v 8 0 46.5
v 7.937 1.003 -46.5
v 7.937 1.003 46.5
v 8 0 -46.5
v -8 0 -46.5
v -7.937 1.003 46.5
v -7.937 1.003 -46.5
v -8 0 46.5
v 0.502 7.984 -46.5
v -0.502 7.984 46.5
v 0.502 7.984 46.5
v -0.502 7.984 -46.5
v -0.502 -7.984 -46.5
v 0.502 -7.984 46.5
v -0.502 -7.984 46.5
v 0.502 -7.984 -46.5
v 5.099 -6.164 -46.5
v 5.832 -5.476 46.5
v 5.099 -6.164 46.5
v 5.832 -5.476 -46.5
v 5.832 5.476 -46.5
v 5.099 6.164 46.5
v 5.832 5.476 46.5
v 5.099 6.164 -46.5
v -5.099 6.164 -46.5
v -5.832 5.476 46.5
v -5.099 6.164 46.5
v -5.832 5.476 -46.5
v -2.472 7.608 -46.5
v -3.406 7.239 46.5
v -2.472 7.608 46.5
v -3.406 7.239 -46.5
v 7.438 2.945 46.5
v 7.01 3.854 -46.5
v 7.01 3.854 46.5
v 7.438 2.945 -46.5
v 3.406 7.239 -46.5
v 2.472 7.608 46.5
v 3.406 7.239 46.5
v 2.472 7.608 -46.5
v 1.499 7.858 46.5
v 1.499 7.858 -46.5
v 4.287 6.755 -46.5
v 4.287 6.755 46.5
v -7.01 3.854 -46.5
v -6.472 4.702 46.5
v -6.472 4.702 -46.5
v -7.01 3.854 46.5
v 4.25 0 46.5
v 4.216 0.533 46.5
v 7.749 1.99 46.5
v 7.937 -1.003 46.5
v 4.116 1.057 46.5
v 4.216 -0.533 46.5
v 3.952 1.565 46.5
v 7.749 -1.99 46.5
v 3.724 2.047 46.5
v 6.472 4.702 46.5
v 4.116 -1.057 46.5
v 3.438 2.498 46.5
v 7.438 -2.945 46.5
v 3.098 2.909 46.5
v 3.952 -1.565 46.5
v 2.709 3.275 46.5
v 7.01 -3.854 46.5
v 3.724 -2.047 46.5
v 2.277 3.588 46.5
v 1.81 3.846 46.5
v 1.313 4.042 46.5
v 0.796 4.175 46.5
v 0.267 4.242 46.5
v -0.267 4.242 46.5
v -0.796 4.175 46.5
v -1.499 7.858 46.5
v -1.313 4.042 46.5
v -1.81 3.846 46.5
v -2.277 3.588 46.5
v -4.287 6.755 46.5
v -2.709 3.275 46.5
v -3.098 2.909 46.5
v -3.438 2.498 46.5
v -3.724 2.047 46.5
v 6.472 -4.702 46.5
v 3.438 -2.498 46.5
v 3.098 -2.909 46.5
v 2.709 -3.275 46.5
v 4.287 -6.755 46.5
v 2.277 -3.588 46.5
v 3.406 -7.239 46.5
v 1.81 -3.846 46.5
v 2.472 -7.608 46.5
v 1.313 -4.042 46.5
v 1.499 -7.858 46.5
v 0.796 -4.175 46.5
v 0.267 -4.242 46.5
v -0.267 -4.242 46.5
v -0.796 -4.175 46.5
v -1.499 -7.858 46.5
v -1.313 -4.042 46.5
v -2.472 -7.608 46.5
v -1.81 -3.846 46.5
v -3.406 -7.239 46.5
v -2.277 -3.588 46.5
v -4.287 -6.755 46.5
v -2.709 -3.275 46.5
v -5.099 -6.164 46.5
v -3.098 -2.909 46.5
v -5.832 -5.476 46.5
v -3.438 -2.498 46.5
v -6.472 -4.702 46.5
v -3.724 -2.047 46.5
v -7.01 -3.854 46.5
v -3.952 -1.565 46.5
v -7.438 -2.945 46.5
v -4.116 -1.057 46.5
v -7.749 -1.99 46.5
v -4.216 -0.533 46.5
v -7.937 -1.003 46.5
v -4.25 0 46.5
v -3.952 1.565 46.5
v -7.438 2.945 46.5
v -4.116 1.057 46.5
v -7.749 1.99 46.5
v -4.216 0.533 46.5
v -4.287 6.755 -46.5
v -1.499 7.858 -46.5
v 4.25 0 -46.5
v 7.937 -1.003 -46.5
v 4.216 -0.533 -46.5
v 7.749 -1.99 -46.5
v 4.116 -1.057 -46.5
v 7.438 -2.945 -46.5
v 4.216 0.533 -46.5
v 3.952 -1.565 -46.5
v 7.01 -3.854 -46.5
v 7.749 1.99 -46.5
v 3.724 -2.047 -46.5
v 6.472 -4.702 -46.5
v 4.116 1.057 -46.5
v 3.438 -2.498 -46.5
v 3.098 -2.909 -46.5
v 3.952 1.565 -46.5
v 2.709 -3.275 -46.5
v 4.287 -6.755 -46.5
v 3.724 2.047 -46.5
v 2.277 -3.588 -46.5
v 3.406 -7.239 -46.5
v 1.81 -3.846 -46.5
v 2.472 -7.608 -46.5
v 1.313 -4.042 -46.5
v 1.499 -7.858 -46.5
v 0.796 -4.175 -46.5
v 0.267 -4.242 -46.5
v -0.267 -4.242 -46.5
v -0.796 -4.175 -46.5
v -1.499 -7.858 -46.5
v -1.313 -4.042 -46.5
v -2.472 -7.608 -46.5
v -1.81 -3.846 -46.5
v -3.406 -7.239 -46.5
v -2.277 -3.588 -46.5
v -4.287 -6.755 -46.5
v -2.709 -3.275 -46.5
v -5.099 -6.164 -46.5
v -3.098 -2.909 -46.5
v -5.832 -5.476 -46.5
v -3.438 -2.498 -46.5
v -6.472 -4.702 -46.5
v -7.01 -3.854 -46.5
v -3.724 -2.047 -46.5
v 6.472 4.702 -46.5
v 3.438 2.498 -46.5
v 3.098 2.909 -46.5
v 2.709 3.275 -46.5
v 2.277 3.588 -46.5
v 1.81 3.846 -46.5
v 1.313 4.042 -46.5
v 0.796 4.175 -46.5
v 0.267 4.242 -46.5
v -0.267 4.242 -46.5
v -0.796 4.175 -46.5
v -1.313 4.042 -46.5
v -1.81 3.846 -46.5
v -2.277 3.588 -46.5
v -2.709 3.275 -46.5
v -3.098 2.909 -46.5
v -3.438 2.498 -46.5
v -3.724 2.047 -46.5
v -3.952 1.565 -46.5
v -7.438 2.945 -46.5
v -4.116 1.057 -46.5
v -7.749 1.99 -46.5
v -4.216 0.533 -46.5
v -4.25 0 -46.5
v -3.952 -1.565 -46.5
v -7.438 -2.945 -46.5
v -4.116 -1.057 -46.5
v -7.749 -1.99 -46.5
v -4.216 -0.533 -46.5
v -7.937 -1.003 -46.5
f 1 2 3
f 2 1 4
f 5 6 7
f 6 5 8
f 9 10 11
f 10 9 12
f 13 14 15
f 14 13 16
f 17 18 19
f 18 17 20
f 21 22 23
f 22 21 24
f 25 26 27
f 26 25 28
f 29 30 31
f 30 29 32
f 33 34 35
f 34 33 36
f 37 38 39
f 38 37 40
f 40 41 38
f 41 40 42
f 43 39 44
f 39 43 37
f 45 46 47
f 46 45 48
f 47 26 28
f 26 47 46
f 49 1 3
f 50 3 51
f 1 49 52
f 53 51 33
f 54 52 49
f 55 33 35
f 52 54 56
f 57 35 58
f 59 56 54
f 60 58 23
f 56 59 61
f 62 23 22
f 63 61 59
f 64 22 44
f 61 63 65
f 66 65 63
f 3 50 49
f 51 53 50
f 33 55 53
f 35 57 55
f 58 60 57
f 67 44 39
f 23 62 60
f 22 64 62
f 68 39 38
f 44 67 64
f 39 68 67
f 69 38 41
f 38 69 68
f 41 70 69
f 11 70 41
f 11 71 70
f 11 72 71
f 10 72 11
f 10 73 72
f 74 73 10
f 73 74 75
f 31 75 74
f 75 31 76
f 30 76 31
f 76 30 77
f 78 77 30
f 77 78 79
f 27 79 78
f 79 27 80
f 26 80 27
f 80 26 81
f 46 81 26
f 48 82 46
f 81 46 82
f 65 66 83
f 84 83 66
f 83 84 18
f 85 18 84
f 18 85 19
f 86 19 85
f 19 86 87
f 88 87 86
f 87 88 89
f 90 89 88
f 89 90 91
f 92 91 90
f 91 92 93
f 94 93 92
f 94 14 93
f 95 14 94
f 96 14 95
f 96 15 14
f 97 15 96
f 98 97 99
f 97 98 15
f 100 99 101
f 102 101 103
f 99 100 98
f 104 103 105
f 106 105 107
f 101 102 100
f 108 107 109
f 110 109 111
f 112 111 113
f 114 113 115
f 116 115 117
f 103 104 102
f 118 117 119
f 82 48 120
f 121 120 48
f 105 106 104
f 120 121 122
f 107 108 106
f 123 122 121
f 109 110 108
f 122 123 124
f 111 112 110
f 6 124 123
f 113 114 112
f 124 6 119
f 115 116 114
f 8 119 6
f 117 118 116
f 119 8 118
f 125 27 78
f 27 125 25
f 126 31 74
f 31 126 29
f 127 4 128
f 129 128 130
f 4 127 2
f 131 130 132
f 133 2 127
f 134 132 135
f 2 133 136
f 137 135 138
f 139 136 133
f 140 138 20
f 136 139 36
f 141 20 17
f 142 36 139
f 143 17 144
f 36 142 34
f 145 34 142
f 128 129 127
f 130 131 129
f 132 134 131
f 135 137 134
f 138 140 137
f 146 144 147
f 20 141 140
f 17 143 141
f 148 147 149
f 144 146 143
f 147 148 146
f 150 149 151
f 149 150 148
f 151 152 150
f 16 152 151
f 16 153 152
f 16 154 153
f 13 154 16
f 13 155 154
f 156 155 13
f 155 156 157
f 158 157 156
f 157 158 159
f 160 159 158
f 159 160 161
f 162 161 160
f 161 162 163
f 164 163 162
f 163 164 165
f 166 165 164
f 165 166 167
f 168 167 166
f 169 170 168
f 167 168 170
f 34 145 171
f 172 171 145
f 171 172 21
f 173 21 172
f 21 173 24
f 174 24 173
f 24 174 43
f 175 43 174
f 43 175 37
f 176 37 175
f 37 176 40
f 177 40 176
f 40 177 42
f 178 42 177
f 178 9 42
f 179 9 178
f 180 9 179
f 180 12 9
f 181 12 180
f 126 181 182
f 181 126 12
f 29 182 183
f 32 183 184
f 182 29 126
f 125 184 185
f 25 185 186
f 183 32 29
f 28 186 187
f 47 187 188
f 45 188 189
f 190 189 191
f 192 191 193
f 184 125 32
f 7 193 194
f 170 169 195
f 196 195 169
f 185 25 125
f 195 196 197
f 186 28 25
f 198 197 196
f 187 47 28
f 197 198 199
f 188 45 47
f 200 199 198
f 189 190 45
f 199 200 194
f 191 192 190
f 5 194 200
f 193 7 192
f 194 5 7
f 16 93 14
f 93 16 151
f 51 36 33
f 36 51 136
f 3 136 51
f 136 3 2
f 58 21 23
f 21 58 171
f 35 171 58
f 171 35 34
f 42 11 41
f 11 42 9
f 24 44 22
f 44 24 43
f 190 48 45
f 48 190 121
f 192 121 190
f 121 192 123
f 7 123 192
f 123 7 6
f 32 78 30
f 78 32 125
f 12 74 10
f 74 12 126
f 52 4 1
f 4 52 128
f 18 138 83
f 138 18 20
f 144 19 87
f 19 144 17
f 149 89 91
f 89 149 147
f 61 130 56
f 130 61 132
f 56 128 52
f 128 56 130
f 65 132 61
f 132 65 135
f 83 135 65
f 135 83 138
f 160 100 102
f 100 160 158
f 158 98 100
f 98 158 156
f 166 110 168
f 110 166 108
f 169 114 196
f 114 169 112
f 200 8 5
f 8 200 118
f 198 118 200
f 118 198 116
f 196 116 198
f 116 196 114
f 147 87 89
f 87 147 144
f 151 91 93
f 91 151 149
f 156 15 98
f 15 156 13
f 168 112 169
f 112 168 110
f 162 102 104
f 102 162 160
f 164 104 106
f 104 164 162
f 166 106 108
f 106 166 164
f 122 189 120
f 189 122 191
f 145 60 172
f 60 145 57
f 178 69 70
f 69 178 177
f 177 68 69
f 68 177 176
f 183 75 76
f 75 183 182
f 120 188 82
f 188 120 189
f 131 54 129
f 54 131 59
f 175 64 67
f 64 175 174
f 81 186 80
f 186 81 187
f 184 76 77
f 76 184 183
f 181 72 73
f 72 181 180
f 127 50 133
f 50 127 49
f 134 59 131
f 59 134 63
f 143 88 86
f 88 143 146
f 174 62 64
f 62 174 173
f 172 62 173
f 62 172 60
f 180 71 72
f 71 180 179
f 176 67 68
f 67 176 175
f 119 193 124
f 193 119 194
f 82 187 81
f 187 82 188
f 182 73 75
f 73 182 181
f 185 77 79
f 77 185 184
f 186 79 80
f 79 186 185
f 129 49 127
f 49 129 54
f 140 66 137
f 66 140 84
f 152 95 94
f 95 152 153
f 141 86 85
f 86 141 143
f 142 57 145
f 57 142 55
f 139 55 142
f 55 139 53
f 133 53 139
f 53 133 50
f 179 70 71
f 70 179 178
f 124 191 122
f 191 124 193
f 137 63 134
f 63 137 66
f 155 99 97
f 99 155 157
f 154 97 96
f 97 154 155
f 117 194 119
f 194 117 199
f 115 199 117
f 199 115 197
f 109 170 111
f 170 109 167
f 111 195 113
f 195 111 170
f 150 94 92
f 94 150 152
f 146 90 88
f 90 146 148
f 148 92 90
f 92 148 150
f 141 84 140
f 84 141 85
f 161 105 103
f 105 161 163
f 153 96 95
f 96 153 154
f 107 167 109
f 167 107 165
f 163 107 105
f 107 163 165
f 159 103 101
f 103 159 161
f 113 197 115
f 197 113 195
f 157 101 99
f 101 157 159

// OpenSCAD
$fn = 50;


difference() {
	union() {
		translate(v = [0, 0, -46.5000000000]) {
			cylinder(h = 93, r = 8.0000000000);
		}
	}
	union() {
		translate(v = [0, 0, -100.0000000000]) {
			cylinder(h = 200, r = 4.2500000000);
		}
	}
}
